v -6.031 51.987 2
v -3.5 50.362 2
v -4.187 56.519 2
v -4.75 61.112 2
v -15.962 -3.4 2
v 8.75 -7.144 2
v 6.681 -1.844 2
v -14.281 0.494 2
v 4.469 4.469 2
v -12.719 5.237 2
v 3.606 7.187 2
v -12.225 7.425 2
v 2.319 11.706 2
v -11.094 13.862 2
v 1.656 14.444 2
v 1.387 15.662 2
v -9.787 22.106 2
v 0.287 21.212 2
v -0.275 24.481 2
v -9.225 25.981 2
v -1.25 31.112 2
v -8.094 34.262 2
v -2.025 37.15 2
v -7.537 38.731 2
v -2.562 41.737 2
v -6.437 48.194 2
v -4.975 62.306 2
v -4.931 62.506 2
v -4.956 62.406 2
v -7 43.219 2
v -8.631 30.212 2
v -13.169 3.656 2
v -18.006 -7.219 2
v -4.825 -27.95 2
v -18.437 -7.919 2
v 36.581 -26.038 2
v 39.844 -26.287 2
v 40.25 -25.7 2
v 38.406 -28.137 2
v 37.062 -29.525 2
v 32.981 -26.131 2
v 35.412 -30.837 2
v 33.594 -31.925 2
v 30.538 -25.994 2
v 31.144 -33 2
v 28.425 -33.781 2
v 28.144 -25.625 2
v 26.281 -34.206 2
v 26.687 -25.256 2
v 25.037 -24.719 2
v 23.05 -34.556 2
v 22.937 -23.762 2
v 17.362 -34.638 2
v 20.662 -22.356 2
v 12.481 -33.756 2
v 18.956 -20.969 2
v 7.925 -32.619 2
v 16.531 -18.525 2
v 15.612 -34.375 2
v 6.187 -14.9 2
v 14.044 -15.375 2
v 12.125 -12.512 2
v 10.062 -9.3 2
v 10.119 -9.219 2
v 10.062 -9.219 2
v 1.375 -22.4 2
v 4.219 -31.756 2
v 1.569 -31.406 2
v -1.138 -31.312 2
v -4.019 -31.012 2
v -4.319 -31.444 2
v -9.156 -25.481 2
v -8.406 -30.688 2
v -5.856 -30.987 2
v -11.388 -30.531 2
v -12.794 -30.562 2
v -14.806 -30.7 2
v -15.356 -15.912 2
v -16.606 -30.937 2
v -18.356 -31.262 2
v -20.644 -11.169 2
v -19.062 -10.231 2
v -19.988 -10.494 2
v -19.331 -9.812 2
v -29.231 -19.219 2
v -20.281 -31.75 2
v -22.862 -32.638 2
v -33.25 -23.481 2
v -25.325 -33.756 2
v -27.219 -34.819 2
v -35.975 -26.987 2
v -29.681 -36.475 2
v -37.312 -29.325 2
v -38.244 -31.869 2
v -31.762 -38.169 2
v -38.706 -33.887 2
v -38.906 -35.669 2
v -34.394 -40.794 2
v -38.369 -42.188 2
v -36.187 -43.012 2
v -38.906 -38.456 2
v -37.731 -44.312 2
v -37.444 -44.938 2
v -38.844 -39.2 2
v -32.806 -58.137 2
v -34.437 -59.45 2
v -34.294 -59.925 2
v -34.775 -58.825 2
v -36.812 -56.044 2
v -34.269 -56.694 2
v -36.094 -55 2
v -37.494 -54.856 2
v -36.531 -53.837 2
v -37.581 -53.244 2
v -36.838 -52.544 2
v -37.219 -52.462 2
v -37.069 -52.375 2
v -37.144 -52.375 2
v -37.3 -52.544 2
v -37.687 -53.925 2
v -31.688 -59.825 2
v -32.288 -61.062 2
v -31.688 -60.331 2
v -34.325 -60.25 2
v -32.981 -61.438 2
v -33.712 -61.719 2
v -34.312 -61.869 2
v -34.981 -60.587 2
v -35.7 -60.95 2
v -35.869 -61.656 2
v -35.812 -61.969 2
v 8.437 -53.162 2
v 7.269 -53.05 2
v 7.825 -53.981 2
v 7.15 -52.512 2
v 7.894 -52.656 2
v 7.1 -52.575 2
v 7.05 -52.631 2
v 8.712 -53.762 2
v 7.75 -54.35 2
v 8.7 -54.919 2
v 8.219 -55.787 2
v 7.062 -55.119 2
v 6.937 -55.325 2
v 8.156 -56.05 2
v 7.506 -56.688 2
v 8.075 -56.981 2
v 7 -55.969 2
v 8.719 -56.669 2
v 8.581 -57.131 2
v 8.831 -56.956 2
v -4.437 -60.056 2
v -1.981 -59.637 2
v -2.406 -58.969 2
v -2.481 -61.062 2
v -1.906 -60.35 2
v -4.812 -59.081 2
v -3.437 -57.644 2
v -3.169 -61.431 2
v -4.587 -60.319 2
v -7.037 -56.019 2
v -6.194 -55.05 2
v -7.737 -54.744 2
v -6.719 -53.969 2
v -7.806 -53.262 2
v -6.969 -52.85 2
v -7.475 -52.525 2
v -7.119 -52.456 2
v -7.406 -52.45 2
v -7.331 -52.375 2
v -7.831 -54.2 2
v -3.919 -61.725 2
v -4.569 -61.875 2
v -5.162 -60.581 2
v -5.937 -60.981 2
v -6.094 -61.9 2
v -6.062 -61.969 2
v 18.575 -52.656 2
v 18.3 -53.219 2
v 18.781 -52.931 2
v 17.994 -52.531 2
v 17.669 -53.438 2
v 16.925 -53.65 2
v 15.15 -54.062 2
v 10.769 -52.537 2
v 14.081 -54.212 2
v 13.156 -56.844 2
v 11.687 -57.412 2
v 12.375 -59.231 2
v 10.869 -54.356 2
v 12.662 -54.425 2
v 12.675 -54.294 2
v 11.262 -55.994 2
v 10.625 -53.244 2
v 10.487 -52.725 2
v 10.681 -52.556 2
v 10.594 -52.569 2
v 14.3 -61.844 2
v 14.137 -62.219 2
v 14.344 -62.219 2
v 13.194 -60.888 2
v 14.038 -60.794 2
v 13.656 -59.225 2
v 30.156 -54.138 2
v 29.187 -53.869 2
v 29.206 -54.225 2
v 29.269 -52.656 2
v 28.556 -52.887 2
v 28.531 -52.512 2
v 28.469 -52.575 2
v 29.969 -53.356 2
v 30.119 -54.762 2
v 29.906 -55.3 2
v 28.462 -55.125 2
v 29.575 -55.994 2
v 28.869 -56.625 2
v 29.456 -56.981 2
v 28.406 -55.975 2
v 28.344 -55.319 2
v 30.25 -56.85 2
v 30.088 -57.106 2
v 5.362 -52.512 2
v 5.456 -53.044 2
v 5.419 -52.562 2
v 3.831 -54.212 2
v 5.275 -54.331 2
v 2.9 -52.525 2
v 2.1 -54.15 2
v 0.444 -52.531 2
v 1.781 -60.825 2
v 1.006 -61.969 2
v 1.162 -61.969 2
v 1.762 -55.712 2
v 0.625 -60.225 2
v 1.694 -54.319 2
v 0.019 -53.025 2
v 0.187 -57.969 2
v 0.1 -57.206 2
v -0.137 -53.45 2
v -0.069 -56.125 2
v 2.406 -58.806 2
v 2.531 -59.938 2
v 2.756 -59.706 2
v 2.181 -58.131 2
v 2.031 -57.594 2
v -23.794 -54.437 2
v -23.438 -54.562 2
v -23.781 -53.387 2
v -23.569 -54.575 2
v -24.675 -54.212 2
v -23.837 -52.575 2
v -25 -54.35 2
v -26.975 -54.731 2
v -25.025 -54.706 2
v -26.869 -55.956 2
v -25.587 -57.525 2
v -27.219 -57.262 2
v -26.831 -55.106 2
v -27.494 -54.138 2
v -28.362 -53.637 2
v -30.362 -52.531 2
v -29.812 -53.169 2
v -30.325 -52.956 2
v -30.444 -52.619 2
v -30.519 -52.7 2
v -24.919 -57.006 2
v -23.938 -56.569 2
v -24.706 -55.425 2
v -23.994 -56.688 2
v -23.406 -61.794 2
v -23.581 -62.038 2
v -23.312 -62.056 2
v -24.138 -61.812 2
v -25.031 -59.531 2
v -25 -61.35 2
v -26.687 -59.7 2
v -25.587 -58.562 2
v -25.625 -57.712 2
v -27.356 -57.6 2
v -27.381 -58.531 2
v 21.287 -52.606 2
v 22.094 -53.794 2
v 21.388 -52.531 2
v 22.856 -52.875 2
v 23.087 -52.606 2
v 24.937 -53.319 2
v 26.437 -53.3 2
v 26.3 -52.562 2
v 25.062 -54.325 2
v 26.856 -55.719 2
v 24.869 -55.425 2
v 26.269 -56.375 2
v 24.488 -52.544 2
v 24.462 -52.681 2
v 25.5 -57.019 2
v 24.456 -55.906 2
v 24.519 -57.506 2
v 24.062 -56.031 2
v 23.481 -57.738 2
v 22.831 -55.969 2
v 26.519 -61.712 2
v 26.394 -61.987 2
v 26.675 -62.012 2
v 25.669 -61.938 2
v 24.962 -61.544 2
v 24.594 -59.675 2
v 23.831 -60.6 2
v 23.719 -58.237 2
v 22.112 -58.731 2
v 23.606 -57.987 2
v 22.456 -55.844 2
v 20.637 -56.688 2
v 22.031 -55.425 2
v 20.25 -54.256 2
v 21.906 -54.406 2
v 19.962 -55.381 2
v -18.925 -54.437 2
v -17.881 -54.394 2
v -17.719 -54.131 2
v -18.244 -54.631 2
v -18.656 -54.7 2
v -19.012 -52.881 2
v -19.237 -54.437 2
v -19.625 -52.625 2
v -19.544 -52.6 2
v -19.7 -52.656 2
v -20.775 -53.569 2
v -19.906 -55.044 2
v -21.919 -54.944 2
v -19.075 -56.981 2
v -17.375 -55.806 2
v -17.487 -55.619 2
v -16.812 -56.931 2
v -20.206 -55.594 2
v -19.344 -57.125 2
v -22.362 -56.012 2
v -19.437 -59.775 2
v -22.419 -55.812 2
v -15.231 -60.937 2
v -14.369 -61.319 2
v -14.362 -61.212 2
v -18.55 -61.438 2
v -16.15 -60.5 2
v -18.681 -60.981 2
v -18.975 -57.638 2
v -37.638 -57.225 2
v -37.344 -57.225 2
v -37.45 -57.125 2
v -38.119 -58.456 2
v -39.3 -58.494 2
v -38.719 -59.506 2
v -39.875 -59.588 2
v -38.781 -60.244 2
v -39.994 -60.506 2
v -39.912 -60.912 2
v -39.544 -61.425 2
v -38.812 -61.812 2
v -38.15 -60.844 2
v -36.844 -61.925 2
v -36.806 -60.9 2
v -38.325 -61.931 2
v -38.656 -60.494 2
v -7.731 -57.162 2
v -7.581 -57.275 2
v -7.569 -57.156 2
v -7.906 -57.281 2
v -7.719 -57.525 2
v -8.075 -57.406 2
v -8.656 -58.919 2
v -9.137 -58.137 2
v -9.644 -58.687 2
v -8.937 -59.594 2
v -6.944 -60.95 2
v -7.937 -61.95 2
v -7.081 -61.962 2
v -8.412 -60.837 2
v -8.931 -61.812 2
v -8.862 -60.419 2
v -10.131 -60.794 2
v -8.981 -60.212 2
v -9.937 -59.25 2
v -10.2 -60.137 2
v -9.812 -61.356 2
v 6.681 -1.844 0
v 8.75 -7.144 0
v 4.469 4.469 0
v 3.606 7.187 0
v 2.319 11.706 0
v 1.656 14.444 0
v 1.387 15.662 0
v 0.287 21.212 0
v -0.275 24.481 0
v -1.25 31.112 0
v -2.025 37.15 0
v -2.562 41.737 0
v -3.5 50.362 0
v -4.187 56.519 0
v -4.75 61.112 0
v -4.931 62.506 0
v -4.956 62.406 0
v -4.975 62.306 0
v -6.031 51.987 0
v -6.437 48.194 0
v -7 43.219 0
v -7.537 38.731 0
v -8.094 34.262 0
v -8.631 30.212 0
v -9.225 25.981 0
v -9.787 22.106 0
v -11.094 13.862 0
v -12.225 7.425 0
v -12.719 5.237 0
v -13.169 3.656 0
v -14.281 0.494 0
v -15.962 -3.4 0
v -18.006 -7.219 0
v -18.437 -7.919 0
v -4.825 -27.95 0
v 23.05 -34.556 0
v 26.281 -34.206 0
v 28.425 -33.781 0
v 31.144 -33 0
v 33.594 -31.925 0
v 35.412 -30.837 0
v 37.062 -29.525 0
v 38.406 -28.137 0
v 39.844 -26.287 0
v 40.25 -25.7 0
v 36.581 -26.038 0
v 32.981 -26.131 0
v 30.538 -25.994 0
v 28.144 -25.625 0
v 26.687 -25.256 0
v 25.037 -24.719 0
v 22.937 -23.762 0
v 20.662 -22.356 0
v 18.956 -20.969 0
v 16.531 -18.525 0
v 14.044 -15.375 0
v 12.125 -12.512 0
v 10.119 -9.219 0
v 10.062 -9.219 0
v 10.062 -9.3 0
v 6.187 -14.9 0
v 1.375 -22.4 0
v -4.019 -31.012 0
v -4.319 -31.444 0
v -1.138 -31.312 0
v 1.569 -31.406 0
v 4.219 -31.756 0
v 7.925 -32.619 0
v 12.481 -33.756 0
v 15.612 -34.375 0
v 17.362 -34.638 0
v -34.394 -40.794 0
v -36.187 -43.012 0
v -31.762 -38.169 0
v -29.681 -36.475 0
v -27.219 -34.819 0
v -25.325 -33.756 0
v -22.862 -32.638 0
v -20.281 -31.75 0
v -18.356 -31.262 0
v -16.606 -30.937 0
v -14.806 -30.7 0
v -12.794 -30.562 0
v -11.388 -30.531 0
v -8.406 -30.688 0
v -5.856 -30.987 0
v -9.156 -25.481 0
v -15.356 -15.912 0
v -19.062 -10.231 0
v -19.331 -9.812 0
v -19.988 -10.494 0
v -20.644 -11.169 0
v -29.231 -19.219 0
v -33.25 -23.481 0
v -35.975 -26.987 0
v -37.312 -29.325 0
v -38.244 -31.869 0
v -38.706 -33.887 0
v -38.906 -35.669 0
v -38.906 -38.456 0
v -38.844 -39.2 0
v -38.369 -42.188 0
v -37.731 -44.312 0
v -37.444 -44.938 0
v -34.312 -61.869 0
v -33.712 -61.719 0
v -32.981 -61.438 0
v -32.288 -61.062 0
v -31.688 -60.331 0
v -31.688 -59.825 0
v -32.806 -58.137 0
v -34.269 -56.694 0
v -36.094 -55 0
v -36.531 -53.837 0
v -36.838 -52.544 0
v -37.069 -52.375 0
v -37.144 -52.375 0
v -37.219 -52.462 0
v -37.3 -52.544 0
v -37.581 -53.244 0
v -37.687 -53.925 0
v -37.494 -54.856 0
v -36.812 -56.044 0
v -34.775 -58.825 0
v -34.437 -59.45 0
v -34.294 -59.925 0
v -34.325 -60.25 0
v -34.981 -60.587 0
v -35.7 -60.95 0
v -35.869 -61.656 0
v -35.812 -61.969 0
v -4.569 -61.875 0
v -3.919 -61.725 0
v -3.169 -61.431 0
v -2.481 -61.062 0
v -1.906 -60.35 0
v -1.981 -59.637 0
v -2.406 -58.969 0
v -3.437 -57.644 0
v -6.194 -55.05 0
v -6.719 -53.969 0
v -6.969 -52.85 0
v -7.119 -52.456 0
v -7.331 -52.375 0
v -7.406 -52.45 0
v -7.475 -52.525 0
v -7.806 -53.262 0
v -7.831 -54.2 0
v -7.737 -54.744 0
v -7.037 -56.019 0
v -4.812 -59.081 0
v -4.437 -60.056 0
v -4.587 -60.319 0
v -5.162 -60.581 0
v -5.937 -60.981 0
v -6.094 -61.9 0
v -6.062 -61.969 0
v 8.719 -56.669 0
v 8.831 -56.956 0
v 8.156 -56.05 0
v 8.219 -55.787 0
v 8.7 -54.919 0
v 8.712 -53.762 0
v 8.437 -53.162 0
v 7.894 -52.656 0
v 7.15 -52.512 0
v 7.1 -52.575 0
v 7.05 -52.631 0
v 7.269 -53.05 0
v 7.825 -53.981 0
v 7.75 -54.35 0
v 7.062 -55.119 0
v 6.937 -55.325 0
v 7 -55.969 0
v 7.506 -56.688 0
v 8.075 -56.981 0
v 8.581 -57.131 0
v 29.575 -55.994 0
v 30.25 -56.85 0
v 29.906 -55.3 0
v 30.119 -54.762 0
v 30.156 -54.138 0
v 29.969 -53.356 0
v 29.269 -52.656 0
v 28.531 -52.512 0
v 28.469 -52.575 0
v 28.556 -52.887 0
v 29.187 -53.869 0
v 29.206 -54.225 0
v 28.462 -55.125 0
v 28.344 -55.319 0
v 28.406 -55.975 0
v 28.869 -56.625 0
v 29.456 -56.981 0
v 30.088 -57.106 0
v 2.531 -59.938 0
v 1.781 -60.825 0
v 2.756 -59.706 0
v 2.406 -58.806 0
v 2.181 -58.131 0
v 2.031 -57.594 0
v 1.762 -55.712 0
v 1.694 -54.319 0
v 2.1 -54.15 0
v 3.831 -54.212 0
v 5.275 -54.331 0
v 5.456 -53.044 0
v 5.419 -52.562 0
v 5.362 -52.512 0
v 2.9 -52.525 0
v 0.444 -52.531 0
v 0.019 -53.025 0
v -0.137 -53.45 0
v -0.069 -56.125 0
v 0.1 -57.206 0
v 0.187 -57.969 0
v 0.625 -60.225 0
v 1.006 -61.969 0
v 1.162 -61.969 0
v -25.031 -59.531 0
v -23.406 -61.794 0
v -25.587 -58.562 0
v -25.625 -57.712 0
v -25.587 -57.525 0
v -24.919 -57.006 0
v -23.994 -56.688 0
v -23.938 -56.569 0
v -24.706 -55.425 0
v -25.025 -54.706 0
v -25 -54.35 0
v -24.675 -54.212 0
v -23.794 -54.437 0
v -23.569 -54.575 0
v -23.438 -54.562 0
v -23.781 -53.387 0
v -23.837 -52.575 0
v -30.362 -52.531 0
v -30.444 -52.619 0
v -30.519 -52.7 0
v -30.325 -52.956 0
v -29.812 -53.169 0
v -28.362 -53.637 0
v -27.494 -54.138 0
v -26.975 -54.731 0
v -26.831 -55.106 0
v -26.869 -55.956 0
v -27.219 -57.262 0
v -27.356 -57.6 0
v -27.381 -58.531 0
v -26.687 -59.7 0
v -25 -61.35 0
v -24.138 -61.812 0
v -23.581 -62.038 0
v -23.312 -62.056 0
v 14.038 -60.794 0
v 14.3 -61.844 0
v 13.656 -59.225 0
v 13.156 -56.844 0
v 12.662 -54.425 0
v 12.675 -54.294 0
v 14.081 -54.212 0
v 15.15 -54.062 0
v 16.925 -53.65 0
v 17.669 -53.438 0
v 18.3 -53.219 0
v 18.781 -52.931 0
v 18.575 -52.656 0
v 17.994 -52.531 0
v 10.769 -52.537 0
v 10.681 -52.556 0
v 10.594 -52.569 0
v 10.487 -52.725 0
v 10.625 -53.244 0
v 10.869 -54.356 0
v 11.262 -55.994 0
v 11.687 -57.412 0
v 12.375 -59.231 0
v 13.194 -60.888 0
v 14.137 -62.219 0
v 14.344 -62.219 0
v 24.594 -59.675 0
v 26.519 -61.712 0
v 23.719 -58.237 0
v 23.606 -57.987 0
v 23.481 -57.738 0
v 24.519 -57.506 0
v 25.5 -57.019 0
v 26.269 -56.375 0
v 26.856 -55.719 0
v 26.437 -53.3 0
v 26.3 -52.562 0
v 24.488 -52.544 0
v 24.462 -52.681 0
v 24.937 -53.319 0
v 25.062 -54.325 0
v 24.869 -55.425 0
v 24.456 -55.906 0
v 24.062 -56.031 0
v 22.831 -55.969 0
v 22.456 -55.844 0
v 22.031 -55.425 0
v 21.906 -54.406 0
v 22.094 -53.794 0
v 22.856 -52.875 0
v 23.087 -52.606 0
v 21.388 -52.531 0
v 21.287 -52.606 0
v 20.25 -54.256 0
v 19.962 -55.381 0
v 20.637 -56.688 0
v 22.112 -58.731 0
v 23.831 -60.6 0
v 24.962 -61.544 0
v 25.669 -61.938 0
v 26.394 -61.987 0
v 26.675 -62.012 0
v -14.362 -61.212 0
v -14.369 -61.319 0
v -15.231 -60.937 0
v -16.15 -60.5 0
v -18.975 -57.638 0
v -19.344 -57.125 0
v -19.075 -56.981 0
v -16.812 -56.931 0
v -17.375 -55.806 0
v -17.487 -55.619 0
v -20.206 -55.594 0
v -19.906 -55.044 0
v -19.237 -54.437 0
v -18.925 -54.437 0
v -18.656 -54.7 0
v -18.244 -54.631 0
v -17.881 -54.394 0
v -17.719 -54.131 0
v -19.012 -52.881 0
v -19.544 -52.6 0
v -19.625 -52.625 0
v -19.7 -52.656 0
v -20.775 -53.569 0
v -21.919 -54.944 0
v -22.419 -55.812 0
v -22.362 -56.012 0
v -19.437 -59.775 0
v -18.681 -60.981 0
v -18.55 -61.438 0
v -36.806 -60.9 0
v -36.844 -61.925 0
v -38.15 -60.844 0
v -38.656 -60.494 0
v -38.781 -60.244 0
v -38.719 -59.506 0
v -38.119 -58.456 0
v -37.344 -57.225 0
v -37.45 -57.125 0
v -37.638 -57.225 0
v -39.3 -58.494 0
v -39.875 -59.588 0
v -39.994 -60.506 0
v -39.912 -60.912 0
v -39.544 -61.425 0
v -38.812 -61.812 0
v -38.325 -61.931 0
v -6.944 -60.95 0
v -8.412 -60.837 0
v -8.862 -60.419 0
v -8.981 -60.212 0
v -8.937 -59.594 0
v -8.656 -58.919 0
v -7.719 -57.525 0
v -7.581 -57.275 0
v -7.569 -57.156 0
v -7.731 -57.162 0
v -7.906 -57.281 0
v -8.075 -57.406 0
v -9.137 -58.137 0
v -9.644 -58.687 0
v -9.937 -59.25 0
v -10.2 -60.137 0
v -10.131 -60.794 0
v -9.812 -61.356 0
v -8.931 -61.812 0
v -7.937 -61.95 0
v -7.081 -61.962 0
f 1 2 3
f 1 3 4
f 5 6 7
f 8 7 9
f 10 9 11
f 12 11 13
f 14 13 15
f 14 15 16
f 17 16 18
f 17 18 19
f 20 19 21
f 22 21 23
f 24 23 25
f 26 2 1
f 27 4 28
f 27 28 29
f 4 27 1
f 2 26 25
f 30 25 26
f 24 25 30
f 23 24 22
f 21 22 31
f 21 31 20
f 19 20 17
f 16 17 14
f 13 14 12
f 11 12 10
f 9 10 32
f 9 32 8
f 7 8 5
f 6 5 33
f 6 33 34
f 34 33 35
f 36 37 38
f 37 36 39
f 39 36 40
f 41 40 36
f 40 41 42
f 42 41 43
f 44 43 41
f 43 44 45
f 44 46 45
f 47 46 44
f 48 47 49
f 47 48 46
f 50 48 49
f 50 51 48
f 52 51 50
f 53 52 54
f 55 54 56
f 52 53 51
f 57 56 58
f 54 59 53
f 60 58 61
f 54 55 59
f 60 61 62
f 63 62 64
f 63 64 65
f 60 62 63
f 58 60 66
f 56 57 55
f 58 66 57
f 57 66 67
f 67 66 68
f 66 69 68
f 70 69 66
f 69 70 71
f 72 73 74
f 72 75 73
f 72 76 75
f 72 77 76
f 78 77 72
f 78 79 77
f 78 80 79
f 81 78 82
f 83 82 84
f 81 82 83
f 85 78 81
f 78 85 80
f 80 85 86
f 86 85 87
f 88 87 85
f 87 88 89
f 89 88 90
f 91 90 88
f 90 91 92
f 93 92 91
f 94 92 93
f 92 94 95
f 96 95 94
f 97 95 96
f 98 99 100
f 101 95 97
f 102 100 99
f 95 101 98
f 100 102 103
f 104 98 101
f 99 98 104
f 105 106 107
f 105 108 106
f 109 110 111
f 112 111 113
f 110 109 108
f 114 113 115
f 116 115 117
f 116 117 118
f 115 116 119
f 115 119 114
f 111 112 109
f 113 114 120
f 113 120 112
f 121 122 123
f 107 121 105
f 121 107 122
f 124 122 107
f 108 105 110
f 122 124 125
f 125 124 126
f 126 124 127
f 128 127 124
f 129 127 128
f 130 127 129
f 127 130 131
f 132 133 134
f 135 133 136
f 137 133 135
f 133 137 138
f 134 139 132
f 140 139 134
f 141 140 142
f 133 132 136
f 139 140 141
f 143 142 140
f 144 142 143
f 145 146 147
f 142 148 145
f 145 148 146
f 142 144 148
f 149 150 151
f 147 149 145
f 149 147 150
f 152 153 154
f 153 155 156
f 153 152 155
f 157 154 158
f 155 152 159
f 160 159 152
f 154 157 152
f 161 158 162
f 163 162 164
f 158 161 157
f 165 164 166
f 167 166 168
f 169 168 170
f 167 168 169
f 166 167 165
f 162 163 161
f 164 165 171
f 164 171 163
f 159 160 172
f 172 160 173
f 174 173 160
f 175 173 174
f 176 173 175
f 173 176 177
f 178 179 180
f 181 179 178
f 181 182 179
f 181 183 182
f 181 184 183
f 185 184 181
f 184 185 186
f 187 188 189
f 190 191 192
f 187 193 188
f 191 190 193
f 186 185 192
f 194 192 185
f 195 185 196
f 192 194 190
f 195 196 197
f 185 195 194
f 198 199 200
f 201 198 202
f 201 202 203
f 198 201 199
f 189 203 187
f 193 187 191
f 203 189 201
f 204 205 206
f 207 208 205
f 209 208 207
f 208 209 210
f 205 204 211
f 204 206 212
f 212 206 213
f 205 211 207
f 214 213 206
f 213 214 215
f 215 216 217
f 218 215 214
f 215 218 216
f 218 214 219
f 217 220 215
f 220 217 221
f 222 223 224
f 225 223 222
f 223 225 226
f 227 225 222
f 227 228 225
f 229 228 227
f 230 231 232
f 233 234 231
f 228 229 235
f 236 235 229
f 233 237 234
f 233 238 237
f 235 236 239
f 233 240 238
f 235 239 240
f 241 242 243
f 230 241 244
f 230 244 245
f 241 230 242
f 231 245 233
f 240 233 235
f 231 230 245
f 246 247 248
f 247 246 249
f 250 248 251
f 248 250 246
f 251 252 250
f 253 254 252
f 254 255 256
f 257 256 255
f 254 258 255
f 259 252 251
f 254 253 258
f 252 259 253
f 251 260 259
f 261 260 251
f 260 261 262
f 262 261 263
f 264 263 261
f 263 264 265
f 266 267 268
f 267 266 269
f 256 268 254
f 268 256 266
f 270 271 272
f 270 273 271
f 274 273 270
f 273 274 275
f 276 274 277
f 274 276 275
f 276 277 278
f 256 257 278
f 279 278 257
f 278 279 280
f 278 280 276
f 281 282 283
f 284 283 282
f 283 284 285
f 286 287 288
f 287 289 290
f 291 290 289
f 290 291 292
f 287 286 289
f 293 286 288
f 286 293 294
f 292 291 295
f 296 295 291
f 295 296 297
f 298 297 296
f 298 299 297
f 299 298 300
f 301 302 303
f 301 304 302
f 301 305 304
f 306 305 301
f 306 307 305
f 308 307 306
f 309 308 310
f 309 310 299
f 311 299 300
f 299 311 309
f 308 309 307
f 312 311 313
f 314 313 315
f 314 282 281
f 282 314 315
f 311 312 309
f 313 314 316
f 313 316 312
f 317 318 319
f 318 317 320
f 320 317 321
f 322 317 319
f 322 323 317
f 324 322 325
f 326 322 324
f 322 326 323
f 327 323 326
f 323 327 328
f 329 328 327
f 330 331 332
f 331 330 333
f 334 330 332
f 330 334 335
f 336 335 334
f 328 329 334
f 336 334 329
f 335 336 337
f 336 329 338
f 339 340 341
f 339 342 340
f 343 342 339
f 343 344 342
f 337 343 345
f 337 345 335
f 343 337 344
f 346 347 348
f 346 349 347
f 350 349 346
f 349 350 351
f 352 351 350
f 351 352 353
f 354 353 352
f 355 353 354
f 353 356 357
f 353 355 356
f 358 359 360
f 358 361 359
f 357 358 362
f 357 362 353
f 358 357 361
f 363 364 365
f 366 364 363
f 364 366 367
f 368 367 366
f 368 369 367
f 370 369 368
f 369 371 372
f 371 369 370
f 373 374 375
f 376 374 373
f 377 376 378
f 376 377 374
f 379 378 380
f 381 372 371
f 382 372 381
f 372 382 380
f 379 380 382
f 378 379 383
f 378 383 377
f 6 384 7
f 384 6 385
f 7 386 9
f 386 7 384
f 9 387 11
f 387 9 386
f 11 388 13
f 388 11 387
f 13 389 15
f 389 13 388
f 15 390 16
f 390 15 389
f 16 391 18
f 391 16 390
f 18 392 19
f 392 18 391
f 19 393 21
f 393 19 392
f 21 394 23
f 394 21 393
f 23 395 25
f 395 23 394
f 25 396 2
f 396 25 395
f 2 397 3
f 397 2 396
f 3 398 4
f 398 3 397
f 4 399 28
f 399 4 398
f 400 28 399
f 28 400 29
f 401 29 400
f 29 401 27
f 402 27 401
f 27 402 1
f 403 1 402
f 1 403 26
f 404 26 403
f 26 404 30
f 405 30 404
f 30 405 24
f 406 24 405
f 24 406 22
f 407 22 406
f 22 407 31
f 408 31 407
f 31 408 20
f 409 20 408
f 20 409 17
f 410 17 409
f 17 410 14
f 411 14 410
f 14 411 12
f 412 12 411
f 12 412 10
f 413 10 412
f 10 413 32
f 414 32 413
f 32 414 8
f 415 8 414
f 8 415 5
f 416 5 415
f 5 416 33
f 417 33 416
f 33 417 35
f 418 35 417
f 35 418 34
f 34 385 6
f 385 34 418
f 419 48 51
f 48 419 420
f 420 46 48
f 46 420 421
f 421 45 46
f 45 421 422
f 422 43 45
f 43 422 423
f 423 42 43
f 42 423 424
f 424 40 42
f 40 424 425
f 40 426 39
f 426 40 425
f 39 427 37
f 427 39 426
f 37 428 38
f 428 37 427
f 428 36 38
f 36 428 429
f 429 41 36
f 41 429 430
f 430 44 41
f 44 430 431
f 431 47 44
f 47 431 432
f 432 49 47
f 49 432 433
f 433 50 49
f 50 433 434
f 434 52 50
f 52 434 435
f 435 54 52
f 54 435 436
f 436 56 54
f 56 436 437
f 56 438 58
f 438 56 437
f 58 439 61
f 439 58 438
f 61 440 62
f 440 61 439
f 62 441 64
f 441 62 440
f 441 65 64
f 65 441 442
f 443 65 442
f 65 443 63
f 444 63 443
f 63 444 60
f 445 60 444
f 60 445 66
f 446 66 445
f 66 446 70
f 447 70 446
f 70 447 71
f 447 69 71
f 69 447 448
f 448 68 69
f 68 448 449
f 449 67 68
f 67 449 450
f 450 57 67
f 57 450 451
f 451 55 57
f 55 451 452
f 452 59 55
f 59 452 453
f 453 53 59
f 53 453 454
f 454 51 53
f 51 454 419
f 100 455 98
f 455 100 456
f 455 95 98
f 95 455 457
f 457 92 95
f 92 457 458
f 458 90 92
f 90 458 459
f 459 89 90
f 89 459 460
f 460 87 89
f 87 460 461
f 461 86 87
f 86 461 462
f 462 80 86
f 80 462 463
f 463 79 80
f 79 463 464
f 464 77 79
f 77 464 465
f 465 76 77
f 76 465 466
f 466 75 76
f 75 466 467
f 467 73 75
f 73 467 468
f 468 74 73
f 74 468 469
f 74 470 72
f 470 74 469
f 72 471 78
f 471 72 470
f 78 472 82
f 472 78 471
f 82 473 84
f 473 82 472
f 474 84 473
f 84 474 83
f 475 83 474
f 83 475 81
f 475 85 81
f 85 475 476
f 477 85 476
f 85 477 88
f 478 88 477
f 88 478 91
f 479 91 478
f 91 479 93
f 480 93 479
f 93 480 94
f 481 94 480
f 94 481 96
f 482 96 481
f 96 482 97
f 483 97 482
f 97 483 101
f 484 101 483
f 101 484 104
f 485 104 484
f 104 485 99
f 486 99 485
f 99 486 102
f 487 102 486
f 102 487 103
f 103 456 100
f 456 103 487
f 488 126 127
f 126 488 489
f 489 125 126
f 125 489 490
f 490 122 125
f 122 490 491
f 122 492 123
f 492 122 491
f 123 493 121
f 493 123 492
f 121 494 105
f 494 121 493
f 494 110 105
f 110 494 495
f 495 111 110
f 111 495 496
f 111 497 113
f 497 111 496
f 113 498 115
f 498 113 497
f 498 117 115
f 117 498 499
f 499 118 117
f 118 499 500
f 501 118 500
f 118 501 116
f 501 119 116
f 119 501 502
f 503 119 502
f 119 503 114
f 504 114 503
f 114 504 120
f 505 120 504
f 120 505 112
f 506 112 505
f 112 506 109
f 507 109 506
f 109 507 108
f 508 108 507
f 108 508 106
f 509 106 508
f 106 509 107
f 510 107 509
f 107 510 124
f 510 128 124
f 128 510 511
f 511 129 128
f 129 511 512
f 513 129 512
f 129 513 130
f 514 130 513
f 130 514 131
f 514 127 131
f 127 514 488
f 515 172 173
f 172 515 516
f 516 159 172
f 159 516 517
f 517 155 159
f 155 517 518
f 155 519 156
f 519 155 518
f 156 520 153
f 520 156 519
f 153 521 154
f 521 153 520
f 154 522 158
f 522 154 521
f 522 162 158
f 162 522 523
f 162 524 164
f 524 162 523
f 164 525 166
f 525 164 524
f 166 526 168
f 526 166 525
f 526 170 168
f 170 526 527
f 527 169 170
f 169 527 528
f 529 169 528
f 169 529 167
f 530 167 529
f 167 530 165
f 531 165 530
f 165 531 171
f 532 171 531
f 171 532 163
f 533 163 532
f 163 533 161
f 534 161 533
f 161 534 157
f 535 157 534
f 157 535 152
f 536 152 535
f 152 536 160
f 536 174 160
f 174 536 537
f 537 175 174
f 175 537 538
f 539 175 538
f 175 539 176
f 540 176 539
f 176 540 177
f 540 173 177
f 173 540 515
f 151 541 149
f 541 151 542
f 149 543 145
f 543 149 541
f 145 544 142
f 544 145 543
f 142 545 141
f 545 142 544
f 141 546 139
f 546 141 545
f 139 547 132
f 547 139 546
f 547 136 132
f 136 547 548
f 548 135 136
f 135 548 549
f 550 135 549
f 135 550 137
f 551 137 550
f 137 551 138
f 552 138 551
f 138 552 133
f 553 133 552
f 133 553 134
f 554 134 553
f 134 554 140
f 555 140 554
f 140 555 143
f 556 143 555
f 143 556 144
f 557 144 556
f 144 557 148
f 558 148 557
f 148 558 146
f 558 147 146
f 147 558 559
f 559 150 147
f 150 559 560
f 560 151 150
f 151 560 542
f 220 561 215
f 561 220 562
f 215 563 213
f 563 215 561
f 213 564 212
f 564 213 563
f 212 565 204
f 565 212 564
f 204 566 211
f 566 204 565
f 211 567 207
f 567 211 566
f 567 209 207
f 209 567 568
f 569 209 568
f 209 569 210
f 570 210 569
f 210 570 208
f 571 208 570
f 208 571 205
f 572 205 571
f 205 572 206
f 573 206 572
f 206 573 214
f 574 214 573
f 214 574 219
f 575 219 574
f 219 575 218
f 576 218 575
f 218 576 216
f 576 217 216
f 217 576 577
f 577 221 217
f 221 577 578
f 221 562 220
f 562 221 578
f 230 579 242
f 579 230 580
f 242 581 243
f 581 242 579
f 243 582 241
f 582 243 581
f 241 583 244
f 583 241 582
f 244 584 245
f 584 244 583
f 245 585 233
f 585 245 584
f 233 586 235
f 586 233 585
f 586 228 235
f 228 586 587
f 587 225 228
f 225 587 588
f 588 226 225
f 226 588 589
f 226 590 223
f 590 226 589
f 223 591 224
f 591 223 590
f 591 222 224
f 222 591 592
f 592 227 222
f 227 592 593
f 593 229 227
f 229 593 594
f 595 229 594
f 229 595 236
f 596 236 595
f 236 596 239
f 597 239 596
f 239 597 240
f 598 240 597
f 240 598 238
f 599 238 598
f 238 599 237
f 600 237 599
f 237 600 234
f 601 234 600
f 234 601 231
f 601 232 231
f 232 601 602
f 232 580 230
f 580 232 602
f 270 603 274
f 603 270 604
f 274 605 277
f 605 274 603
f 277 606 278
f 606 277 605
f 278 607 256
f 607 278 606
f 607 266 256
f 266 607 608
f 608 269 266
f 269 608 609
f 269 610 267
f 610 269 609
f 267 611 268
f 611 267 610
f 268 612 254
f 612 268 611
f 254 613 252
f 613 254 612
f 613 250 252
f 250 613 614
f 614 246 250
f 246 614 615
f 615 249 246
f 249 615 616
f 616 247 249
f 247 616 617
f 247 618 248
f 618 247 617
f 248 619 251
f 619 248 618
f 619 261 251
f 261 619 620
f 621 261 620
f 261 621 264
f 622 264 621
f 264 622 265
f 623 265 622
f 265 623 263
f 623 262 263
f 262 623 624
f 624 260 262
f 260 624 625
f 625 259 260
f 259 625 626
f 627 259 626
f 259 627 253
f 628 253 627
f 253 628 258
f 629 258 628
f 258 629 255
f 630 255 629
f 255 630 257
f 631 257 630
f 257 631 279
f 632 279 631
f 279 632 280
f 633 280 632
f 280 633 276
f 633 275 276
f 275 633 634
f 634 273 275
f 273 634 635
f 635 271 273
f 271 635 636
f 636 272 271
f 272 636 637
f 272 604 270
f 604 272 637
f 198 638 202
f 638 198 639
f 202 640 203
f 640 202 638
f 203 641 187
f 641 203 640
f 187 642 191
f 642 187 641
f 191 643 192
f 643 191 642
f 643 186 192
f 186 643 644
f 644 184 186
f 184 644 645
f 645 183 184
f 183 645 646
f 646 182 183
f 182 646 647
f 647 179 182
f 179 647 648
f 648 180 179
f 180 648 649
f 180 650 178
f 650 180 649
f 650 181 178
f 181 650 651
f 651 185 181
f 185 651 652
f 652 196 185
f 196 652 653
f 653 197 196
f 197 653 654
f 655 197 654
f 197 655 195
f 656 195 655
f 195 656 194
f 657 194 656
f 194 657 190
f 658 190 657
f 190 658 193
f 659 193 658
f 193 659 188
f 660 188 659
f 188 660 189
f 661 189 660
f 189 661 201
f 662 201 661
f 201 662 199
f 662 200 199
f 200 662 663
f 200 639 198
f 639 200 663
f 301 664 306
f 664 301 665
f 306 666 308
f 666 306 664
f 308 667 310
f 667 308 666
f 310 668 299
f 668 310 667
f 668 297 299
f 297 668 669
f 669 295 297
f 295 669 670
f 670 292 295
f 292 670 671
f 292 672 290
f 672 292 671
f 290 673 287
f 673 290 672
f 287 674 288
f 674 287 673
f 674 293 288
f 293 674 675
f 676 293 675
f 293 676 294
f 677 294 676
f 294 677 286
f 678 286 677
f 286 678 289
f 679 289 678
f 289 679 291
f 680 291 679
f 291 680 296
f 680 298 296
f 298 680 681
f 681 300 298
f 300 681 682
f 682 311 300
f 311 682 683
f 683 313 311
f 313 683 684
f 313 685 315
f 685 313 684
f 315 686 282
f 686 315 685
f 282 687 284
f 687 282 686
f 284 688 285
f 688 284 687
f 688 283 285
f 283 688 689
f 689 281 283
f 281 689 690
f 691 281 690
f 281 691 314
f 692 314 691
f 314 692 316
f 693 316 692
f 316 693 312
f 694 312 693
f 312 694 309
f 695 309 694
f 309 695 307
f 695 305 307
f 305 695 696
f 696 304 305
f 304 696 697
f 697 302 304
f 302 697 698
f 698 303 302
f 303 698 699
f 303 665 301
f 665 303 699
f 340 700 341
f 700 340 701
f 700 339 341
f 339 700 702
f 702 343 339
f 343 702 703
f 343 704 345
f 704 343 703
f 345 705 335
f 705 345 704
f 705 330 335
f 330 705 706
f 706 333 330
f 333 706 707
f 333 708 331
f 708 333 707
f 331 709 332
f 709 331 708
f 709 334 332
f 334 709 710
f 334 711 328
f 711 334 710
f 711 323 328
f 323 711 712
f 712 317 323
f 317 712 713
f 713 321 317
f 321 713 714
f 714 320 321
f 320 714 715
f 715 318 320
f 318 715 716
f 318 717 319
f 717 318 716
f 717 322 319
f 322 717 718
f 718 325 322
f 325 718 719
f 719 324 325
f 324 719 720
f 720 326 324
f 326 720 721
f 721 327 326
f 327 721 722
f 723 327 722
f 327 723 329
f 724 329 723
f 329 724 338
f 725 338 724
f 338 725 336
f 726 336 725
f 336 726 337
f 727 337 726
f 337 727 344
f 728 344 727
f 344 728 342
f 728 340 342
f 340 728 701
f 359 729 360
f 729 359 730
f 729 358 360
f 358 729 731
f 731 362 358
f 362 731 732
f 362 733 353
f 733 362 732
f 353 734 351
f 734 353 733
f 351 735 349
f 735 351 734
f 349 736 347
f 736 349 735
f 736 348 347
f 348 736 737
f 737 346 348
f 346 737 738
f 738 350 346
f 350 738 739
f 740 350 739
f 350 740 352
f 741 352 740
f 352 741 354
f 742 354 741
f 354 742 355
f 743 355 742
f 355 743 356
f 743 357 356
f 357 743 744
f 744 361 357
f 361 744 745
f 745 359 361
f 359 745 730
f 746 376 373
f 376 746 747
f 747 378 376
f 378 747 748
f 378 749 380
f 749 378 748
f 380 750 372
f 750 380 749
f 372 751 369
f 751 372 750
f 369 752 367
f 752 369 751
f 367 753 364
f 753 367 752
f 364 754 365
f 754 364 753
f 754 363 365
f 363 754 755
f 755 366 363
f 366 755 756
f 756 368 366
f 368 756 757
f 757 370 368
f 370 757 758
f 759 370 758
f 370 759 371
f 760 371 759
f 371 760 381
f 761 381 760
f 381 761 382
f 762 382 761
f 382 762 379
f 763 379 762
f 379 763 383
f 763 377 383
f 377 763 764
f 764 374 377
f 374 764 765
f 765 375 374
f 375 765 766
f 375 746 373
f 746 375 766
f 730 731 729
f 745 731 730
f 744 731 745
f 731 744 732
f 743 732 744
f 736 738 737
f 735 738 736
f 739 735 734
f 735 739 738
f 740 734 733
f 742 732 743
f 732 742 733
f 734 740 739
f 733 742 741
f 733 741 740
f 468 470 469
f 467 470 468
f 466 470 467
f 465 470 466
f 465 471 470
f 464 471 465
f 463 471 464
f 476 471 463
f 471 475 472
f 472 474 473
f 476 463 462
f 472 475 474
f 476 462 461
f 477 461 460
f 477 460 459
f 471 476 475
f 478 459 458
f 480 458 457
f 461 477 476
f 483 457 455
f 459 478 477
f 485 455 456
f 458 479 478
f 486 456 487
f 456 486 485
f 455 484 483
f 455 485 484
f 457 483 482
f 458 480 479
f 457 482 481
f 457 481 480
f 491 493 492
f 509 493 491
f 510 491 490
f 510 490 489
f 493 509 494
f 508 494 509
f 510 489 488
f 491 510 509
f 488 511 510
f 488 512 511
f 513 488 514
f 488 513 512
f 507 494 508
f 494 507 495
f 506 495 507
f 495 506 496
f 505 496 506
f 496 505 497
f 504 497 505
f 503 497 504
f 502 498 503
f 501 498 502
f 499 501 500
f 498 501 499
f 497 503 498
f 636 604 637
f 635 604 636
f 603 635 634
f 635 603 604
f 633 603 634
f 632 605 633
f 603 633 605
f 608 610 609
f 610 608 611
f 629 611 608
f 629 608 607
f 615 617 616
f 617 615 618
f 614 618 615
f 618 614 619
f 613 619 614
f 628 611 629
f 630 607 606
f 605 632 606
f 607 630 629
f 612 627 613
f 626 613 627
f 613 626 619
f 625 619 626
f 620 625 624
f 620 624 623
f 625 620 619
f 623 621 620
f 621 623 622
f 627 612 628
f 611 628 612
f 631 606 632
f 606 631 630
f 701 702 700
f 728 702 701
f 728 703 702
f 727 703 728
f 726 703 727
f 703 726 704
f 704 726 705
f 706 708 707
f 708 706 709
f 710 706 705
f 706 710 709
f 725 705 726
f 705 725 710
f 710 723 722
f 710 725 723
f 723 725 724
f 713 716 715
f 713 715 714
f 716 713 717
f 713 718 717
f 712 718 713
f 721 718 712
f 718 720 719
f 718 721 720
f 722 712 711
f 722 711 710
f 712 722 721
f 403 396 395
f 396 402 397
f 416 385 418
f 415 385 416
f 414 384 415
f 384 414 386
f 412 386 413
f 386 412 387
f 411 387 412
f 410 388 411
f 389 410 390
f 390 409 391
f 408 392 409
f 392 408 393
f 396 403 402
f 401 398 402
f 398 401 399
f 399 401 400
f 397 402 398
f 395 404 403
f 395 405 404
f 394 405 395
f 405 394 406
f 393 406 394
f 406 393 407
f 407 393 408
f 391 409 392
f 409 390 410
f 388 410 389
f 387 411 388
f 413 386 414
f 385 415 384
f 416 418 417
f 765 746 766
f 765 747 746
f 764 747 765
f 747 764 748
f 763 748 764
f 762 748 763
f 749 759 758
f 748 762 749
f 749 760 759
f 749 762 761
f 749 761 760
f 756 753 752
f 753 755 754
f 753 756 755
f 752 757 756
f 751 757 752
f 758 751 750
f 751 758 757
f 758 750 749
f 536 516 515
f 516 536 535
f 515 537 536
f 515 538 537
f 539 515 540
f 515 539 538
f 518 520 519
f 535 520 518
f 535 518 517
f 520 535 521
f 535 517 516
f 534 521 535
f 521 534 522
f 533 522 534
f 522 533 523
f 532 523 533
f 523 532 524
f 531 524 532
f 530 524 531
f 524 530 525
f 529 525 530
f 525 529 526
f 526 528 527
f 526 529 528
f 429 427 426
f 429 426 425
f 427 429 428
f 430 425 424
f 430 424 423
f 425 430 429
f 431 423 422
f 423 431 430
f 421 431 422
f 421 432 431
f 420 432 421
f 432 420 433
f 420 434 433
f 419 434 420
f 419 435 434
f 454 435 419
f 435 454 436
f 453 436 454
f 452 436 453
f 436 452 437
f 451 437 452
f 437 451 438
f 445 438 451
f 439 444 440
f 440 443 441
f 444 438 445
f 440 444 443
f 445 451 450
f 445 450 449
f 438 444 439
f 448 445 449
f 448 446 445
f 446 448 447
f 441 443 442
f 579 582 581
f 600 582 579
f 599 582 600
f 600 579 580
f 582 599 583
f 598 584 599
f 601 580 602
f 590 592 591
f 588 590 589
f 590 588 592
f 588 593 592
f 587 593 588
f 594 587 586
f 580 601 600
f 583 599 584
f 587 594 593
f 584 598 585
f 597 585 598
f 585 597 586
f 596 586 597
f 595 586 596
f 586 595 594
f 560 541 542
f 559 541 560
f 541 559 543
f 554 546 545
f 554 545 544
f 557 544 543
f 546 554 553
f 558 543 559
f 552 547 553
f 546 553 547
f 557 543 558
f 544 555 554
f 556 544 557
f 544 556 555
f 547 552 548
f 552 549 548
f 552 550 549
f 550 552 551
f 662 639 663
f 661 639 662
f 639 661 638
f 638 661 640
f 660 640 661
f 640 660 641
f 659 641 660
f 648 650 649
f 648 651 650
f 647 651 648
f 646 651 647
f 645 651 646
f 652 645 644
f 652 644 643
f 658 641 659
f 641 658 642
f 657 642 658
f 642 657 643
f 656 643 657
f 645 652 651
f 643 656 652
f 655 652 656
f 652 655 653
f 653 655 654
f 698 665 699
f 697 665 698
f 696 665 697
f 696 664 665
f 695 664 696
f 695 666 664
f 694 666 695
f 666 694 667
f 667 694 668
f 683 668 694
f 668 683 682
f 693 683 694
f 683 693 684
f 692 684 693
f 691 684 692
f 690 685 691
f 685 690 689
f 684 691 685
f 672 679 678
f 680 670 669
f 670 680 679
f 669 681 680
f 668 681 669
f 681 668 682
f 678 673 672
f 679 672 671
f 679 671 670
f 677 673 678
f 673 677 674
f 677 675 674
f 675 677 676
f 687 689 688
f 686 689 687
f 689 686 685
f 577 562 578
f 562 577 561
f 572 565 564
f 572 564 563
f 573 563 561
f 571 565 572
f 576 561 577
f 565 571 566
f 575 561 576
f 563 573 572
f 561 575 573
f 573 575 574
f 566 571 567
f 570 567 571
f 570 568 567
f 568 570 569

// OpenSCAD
module 44bd3e34399673002c426c1fa7be364a_1()
{
 /* Generated by trace2scad version 20150415
    http://aggregate.org/MAKE/TRACE2SCAD/
    Optimized model has 387/4796 original points
 */
 color([0.48, 0.48, 0.48])
 assign(minx=0) /* polygon minx=39 */
 assign(miny=0) /* polygon miny=45 */
 assign(maxx=12880) /* polygon maxx=12880 */
 assign(maxy=20000) /* polygon maxy=20001 */
 assign(dx=maxx-minx)
 assign(dy=maxy-miny)
 assign(maxd=((dx>dy)?dx:dy))
 scale([1/maxd, 1/maxd, 1])
 translate([-minx-dx/2, -miny-dy/2, 0])
 linear_extrude(height=1, convexity=387)
 union() {
  union() {
   polygon([[5647,19985],[5644,19969],[5475,18318],[5410,17711],[5320,16915],[5234,16197],[5145,15482],[5059,14834],[4964,14157],[4874,13537],[4665,12218],[4484,11188],[4405,10838],[4333,10585],[4155,10079],[3886,9456],[3559,8845],[3490,8733],[5668,5528],[7840,8857],[7509,9705],[7155,10715],[7017,11150],[6811,11873],[6705,12311],[6662,12506],[6486,13394],[6396,13917],[6240,14978],[6116,15944],[6030,16678],[5880,18058],[5770,19043],[5680,19778],[5651,20001]], convexity=6);
   polygon([[8050,8518],[8050,8512],[7430,7616],[6660,6416],[5797,5038],[5749,4969],[6258,4990],[6691,4975],[7115,4919],[7708,4781],[8437,4599],[8938,4500],[9218,4458],[10128,4471],[10645,4527],[10988,4595],[11423,4720],[11815,4892],[12106,5066],[12370,5276],[12585,5498],[12815,5794],[12880,5888],[12293,5834],[11717,5819],[11326,5841],[10943,5900],[10710,5959],[10446,6045],[10110,6198],[9746,6423],[9473,6645],[9085,7036],[8687,7540],[8380,7998],[8059,8525],[8050,8525]], convexity=9);
   polygon([[3242,8321],[3137,8213],[1763,6925],[1120,6243],[684,5682],[470,5308],[321,4901],[247,4578],[215,4293],[215,3847],[225,3728],[301,3250],[403,2910],[449,2810],[650,3118],[937,3473],[1358,3893],[1691,4164],[2085,4429],[2388,4599],[2782,4778],[3195,4920],[3503,4998],[3783,5050],[4071,5088],[4393,5110],[4618,5115],[5095,5090],[5503,5042],[4975,5923],[3983,7454],[3390,8363],[3347,8430]], convexity=7);
   polygon([[485,1606],[472,1593],[427,1481],[410,1372],[441,1223],[550,1033],[876,588],[930,488],[953,412],[948,360],[843,306],[728,248],[701,135],[710,85],[950,101],[1046,125],[1163,170],[1274,230],[1370,347],[1370,428],[1191,698],[957,929],[665,1200],[595,1386],[546,1593],[509,1620],[497,1620]], convexity=8);
   polygon([[5255,1608],[5244,1596],[5191,1478],[5187,1328],[5202,1241],[5314,1037],[5670,547],[5730,391],[5706,349],[5614,307],[5490,243],[5465,96],[5470,85],[5709,100],[5813,124],[5933,171],[6043,230],[6135,344],[6123,458],[6055,565],[5890,777],[5449,1192],[5365,1365],[5325,1544],[5301,1607],[5267,1620]], convexity=8);
   polygon([[6904,1596],[6511,1595],[6443,1516],[6418,1448],[6429,1020],[6456,847],[6470,725],[6540,364],[6601,85],[6626,85],[6725,268],[6845,410],[6881,447],[6825,591],[6789,699],[6765,785],[6722,1086],[6711,1309],[6776,1336],[7053,1326],[7284,1307],[7313,1513],[7307,1590],[7298,1598]], convexity=10);
   polygon([[7576,1588],[7568,1579],[7603,1512],[7692,1363],[7680,1304],[7570,1181],[7550,1148],[7560,1045],[7641,930],[7732,883],[7813,859],[7853,887],[7835,933],[7745,1032],[7755,1074],[7832,1213],[7834,1398],[7790,1494],[7703,1575],[7584,1598]], convexity=10);
   polygon([[11000,1593],[10995,1588],[11009,1538],[11110,1381],[11113,1324],[10994,1180],[10975,1149],[10985,1044],[11059,940],[11153,883],[11254,863],[11280,904],[11172,1041],[11225,1152],[11259,1238],[11265,1338],[11235,1463],[11123,1575],[11005,1598]], convexity=10);
   polygon([[1569,1581],[1557,1568],[1588,1527],[1670,1493],[1902,1418],[2041,1338],[2124,1243],[2147,1183],[2141,1047],[2085,838],[2063,784],[2059,635],[2170,448],[2440,184],[2578,110],[2667,74],[2710,71],[2695,113],[2435,475],[2346,630],[2340,766],[2346,796],[2453,879],[2601,930],[2610,949],[2487,1132],[2436,1247],[2440,1304],[2492,1326],[2633,1290],[2669,1268],[2690,1270],[2635,1458],[2626,1588],[1582,1595]], convexity=13);
   polygon([[8149,1591],[8135,1589],[8118,1564],[8140,1481],[8179,1303],[8242,1041],[8310,814],[8420,523],[8551,258],[8702,45],[8735,45],[8728,105],[8686,273],[8625,524],[8545,905],[8466,1292],[8468,1313],[8693,1326],[8864,1350],[9148,1416],[9267,1450],[9368,1485],[9445,1531],[9412,1575],[9319,1595],[8163,1594]], convexity=9);
   polygon([[9854,1589],[9846,1583],[9680,1319],[9634,1139],[9742,930],[9978,603],[10253,304],[10434,153],[10547,90],[10663,82],[10708,78],[10683,126],[10375,452],[10235,682],[10217,722],[10197,762],[10363,799],[10520,877],[10643,980],[10737,1085],[10670,1472],[10648,1590],[10358,1593],[10354,1571],[10430,1469],[10450,1308],[10419,1132],[10353,1055],[10290,1035],[10093,1045],[10033,1065],[9965,1132],[9945,1295],[9975,1393],[10097,1540],[10134,1583],[9862,1595]], convexity=13);
   polygon([[3300,1580],[3288,1575],[3116,1429],[2933,1209],[2853,1070],[2862,1038],[3330,436],[3451,243],[3472,170],[4141,189],[4142,206],[4003,250],[3856,320],[3404,778],[3345,860],[3388,883],[3750,891],[3660,1071],[3642,1101],[3207,1105],[3255,1193],[3362,1290],[3412,1290],[3455,1248],[3521,1259],[3579,1297],[3605,1339],[3398,1539],[3313,1584]], convexity=12);
   polygon([[433,852],[418,844],[152,641],[60,466],[41,319],[54,254],[113,172],[230,110],[308,91],[545,92],[551,256],[336,265],[255,321],[235,361],[245,479],[341,647],[465,844],[448,860]], convexity=8);
   polygon([[5175,835],[5148,815],[4978,698],[4897,610],[4850,520],[4808,378],[4819,273],[4870,183],[5011,110],[5170,88],[5307,86],[5329,248],[5094,266],[5022,333],[5003,366],[5010,465],[5055,573],[5205,796],[5227,836],[5229,855],[5203,854]], convexity=8);
  }
 }
}

module 44bd3e34399673002c426c1fa7be364a()
{
 /* all layers combined, scaled to within a 1mm cube */
 scale([1, 1, 1/1])
 difference() {
  union() {
   scale([1,1,2]) translate([0,0,-0.5]) 44bd3e34399673002c426c1fa7be364a_1();
  }
  translate([0,0,-2]) cube([2,2,4],center=true);
 }
}

scale([125, 125, 2]) {
	44bd3e34399673002c426c1fa7be364a();
}
